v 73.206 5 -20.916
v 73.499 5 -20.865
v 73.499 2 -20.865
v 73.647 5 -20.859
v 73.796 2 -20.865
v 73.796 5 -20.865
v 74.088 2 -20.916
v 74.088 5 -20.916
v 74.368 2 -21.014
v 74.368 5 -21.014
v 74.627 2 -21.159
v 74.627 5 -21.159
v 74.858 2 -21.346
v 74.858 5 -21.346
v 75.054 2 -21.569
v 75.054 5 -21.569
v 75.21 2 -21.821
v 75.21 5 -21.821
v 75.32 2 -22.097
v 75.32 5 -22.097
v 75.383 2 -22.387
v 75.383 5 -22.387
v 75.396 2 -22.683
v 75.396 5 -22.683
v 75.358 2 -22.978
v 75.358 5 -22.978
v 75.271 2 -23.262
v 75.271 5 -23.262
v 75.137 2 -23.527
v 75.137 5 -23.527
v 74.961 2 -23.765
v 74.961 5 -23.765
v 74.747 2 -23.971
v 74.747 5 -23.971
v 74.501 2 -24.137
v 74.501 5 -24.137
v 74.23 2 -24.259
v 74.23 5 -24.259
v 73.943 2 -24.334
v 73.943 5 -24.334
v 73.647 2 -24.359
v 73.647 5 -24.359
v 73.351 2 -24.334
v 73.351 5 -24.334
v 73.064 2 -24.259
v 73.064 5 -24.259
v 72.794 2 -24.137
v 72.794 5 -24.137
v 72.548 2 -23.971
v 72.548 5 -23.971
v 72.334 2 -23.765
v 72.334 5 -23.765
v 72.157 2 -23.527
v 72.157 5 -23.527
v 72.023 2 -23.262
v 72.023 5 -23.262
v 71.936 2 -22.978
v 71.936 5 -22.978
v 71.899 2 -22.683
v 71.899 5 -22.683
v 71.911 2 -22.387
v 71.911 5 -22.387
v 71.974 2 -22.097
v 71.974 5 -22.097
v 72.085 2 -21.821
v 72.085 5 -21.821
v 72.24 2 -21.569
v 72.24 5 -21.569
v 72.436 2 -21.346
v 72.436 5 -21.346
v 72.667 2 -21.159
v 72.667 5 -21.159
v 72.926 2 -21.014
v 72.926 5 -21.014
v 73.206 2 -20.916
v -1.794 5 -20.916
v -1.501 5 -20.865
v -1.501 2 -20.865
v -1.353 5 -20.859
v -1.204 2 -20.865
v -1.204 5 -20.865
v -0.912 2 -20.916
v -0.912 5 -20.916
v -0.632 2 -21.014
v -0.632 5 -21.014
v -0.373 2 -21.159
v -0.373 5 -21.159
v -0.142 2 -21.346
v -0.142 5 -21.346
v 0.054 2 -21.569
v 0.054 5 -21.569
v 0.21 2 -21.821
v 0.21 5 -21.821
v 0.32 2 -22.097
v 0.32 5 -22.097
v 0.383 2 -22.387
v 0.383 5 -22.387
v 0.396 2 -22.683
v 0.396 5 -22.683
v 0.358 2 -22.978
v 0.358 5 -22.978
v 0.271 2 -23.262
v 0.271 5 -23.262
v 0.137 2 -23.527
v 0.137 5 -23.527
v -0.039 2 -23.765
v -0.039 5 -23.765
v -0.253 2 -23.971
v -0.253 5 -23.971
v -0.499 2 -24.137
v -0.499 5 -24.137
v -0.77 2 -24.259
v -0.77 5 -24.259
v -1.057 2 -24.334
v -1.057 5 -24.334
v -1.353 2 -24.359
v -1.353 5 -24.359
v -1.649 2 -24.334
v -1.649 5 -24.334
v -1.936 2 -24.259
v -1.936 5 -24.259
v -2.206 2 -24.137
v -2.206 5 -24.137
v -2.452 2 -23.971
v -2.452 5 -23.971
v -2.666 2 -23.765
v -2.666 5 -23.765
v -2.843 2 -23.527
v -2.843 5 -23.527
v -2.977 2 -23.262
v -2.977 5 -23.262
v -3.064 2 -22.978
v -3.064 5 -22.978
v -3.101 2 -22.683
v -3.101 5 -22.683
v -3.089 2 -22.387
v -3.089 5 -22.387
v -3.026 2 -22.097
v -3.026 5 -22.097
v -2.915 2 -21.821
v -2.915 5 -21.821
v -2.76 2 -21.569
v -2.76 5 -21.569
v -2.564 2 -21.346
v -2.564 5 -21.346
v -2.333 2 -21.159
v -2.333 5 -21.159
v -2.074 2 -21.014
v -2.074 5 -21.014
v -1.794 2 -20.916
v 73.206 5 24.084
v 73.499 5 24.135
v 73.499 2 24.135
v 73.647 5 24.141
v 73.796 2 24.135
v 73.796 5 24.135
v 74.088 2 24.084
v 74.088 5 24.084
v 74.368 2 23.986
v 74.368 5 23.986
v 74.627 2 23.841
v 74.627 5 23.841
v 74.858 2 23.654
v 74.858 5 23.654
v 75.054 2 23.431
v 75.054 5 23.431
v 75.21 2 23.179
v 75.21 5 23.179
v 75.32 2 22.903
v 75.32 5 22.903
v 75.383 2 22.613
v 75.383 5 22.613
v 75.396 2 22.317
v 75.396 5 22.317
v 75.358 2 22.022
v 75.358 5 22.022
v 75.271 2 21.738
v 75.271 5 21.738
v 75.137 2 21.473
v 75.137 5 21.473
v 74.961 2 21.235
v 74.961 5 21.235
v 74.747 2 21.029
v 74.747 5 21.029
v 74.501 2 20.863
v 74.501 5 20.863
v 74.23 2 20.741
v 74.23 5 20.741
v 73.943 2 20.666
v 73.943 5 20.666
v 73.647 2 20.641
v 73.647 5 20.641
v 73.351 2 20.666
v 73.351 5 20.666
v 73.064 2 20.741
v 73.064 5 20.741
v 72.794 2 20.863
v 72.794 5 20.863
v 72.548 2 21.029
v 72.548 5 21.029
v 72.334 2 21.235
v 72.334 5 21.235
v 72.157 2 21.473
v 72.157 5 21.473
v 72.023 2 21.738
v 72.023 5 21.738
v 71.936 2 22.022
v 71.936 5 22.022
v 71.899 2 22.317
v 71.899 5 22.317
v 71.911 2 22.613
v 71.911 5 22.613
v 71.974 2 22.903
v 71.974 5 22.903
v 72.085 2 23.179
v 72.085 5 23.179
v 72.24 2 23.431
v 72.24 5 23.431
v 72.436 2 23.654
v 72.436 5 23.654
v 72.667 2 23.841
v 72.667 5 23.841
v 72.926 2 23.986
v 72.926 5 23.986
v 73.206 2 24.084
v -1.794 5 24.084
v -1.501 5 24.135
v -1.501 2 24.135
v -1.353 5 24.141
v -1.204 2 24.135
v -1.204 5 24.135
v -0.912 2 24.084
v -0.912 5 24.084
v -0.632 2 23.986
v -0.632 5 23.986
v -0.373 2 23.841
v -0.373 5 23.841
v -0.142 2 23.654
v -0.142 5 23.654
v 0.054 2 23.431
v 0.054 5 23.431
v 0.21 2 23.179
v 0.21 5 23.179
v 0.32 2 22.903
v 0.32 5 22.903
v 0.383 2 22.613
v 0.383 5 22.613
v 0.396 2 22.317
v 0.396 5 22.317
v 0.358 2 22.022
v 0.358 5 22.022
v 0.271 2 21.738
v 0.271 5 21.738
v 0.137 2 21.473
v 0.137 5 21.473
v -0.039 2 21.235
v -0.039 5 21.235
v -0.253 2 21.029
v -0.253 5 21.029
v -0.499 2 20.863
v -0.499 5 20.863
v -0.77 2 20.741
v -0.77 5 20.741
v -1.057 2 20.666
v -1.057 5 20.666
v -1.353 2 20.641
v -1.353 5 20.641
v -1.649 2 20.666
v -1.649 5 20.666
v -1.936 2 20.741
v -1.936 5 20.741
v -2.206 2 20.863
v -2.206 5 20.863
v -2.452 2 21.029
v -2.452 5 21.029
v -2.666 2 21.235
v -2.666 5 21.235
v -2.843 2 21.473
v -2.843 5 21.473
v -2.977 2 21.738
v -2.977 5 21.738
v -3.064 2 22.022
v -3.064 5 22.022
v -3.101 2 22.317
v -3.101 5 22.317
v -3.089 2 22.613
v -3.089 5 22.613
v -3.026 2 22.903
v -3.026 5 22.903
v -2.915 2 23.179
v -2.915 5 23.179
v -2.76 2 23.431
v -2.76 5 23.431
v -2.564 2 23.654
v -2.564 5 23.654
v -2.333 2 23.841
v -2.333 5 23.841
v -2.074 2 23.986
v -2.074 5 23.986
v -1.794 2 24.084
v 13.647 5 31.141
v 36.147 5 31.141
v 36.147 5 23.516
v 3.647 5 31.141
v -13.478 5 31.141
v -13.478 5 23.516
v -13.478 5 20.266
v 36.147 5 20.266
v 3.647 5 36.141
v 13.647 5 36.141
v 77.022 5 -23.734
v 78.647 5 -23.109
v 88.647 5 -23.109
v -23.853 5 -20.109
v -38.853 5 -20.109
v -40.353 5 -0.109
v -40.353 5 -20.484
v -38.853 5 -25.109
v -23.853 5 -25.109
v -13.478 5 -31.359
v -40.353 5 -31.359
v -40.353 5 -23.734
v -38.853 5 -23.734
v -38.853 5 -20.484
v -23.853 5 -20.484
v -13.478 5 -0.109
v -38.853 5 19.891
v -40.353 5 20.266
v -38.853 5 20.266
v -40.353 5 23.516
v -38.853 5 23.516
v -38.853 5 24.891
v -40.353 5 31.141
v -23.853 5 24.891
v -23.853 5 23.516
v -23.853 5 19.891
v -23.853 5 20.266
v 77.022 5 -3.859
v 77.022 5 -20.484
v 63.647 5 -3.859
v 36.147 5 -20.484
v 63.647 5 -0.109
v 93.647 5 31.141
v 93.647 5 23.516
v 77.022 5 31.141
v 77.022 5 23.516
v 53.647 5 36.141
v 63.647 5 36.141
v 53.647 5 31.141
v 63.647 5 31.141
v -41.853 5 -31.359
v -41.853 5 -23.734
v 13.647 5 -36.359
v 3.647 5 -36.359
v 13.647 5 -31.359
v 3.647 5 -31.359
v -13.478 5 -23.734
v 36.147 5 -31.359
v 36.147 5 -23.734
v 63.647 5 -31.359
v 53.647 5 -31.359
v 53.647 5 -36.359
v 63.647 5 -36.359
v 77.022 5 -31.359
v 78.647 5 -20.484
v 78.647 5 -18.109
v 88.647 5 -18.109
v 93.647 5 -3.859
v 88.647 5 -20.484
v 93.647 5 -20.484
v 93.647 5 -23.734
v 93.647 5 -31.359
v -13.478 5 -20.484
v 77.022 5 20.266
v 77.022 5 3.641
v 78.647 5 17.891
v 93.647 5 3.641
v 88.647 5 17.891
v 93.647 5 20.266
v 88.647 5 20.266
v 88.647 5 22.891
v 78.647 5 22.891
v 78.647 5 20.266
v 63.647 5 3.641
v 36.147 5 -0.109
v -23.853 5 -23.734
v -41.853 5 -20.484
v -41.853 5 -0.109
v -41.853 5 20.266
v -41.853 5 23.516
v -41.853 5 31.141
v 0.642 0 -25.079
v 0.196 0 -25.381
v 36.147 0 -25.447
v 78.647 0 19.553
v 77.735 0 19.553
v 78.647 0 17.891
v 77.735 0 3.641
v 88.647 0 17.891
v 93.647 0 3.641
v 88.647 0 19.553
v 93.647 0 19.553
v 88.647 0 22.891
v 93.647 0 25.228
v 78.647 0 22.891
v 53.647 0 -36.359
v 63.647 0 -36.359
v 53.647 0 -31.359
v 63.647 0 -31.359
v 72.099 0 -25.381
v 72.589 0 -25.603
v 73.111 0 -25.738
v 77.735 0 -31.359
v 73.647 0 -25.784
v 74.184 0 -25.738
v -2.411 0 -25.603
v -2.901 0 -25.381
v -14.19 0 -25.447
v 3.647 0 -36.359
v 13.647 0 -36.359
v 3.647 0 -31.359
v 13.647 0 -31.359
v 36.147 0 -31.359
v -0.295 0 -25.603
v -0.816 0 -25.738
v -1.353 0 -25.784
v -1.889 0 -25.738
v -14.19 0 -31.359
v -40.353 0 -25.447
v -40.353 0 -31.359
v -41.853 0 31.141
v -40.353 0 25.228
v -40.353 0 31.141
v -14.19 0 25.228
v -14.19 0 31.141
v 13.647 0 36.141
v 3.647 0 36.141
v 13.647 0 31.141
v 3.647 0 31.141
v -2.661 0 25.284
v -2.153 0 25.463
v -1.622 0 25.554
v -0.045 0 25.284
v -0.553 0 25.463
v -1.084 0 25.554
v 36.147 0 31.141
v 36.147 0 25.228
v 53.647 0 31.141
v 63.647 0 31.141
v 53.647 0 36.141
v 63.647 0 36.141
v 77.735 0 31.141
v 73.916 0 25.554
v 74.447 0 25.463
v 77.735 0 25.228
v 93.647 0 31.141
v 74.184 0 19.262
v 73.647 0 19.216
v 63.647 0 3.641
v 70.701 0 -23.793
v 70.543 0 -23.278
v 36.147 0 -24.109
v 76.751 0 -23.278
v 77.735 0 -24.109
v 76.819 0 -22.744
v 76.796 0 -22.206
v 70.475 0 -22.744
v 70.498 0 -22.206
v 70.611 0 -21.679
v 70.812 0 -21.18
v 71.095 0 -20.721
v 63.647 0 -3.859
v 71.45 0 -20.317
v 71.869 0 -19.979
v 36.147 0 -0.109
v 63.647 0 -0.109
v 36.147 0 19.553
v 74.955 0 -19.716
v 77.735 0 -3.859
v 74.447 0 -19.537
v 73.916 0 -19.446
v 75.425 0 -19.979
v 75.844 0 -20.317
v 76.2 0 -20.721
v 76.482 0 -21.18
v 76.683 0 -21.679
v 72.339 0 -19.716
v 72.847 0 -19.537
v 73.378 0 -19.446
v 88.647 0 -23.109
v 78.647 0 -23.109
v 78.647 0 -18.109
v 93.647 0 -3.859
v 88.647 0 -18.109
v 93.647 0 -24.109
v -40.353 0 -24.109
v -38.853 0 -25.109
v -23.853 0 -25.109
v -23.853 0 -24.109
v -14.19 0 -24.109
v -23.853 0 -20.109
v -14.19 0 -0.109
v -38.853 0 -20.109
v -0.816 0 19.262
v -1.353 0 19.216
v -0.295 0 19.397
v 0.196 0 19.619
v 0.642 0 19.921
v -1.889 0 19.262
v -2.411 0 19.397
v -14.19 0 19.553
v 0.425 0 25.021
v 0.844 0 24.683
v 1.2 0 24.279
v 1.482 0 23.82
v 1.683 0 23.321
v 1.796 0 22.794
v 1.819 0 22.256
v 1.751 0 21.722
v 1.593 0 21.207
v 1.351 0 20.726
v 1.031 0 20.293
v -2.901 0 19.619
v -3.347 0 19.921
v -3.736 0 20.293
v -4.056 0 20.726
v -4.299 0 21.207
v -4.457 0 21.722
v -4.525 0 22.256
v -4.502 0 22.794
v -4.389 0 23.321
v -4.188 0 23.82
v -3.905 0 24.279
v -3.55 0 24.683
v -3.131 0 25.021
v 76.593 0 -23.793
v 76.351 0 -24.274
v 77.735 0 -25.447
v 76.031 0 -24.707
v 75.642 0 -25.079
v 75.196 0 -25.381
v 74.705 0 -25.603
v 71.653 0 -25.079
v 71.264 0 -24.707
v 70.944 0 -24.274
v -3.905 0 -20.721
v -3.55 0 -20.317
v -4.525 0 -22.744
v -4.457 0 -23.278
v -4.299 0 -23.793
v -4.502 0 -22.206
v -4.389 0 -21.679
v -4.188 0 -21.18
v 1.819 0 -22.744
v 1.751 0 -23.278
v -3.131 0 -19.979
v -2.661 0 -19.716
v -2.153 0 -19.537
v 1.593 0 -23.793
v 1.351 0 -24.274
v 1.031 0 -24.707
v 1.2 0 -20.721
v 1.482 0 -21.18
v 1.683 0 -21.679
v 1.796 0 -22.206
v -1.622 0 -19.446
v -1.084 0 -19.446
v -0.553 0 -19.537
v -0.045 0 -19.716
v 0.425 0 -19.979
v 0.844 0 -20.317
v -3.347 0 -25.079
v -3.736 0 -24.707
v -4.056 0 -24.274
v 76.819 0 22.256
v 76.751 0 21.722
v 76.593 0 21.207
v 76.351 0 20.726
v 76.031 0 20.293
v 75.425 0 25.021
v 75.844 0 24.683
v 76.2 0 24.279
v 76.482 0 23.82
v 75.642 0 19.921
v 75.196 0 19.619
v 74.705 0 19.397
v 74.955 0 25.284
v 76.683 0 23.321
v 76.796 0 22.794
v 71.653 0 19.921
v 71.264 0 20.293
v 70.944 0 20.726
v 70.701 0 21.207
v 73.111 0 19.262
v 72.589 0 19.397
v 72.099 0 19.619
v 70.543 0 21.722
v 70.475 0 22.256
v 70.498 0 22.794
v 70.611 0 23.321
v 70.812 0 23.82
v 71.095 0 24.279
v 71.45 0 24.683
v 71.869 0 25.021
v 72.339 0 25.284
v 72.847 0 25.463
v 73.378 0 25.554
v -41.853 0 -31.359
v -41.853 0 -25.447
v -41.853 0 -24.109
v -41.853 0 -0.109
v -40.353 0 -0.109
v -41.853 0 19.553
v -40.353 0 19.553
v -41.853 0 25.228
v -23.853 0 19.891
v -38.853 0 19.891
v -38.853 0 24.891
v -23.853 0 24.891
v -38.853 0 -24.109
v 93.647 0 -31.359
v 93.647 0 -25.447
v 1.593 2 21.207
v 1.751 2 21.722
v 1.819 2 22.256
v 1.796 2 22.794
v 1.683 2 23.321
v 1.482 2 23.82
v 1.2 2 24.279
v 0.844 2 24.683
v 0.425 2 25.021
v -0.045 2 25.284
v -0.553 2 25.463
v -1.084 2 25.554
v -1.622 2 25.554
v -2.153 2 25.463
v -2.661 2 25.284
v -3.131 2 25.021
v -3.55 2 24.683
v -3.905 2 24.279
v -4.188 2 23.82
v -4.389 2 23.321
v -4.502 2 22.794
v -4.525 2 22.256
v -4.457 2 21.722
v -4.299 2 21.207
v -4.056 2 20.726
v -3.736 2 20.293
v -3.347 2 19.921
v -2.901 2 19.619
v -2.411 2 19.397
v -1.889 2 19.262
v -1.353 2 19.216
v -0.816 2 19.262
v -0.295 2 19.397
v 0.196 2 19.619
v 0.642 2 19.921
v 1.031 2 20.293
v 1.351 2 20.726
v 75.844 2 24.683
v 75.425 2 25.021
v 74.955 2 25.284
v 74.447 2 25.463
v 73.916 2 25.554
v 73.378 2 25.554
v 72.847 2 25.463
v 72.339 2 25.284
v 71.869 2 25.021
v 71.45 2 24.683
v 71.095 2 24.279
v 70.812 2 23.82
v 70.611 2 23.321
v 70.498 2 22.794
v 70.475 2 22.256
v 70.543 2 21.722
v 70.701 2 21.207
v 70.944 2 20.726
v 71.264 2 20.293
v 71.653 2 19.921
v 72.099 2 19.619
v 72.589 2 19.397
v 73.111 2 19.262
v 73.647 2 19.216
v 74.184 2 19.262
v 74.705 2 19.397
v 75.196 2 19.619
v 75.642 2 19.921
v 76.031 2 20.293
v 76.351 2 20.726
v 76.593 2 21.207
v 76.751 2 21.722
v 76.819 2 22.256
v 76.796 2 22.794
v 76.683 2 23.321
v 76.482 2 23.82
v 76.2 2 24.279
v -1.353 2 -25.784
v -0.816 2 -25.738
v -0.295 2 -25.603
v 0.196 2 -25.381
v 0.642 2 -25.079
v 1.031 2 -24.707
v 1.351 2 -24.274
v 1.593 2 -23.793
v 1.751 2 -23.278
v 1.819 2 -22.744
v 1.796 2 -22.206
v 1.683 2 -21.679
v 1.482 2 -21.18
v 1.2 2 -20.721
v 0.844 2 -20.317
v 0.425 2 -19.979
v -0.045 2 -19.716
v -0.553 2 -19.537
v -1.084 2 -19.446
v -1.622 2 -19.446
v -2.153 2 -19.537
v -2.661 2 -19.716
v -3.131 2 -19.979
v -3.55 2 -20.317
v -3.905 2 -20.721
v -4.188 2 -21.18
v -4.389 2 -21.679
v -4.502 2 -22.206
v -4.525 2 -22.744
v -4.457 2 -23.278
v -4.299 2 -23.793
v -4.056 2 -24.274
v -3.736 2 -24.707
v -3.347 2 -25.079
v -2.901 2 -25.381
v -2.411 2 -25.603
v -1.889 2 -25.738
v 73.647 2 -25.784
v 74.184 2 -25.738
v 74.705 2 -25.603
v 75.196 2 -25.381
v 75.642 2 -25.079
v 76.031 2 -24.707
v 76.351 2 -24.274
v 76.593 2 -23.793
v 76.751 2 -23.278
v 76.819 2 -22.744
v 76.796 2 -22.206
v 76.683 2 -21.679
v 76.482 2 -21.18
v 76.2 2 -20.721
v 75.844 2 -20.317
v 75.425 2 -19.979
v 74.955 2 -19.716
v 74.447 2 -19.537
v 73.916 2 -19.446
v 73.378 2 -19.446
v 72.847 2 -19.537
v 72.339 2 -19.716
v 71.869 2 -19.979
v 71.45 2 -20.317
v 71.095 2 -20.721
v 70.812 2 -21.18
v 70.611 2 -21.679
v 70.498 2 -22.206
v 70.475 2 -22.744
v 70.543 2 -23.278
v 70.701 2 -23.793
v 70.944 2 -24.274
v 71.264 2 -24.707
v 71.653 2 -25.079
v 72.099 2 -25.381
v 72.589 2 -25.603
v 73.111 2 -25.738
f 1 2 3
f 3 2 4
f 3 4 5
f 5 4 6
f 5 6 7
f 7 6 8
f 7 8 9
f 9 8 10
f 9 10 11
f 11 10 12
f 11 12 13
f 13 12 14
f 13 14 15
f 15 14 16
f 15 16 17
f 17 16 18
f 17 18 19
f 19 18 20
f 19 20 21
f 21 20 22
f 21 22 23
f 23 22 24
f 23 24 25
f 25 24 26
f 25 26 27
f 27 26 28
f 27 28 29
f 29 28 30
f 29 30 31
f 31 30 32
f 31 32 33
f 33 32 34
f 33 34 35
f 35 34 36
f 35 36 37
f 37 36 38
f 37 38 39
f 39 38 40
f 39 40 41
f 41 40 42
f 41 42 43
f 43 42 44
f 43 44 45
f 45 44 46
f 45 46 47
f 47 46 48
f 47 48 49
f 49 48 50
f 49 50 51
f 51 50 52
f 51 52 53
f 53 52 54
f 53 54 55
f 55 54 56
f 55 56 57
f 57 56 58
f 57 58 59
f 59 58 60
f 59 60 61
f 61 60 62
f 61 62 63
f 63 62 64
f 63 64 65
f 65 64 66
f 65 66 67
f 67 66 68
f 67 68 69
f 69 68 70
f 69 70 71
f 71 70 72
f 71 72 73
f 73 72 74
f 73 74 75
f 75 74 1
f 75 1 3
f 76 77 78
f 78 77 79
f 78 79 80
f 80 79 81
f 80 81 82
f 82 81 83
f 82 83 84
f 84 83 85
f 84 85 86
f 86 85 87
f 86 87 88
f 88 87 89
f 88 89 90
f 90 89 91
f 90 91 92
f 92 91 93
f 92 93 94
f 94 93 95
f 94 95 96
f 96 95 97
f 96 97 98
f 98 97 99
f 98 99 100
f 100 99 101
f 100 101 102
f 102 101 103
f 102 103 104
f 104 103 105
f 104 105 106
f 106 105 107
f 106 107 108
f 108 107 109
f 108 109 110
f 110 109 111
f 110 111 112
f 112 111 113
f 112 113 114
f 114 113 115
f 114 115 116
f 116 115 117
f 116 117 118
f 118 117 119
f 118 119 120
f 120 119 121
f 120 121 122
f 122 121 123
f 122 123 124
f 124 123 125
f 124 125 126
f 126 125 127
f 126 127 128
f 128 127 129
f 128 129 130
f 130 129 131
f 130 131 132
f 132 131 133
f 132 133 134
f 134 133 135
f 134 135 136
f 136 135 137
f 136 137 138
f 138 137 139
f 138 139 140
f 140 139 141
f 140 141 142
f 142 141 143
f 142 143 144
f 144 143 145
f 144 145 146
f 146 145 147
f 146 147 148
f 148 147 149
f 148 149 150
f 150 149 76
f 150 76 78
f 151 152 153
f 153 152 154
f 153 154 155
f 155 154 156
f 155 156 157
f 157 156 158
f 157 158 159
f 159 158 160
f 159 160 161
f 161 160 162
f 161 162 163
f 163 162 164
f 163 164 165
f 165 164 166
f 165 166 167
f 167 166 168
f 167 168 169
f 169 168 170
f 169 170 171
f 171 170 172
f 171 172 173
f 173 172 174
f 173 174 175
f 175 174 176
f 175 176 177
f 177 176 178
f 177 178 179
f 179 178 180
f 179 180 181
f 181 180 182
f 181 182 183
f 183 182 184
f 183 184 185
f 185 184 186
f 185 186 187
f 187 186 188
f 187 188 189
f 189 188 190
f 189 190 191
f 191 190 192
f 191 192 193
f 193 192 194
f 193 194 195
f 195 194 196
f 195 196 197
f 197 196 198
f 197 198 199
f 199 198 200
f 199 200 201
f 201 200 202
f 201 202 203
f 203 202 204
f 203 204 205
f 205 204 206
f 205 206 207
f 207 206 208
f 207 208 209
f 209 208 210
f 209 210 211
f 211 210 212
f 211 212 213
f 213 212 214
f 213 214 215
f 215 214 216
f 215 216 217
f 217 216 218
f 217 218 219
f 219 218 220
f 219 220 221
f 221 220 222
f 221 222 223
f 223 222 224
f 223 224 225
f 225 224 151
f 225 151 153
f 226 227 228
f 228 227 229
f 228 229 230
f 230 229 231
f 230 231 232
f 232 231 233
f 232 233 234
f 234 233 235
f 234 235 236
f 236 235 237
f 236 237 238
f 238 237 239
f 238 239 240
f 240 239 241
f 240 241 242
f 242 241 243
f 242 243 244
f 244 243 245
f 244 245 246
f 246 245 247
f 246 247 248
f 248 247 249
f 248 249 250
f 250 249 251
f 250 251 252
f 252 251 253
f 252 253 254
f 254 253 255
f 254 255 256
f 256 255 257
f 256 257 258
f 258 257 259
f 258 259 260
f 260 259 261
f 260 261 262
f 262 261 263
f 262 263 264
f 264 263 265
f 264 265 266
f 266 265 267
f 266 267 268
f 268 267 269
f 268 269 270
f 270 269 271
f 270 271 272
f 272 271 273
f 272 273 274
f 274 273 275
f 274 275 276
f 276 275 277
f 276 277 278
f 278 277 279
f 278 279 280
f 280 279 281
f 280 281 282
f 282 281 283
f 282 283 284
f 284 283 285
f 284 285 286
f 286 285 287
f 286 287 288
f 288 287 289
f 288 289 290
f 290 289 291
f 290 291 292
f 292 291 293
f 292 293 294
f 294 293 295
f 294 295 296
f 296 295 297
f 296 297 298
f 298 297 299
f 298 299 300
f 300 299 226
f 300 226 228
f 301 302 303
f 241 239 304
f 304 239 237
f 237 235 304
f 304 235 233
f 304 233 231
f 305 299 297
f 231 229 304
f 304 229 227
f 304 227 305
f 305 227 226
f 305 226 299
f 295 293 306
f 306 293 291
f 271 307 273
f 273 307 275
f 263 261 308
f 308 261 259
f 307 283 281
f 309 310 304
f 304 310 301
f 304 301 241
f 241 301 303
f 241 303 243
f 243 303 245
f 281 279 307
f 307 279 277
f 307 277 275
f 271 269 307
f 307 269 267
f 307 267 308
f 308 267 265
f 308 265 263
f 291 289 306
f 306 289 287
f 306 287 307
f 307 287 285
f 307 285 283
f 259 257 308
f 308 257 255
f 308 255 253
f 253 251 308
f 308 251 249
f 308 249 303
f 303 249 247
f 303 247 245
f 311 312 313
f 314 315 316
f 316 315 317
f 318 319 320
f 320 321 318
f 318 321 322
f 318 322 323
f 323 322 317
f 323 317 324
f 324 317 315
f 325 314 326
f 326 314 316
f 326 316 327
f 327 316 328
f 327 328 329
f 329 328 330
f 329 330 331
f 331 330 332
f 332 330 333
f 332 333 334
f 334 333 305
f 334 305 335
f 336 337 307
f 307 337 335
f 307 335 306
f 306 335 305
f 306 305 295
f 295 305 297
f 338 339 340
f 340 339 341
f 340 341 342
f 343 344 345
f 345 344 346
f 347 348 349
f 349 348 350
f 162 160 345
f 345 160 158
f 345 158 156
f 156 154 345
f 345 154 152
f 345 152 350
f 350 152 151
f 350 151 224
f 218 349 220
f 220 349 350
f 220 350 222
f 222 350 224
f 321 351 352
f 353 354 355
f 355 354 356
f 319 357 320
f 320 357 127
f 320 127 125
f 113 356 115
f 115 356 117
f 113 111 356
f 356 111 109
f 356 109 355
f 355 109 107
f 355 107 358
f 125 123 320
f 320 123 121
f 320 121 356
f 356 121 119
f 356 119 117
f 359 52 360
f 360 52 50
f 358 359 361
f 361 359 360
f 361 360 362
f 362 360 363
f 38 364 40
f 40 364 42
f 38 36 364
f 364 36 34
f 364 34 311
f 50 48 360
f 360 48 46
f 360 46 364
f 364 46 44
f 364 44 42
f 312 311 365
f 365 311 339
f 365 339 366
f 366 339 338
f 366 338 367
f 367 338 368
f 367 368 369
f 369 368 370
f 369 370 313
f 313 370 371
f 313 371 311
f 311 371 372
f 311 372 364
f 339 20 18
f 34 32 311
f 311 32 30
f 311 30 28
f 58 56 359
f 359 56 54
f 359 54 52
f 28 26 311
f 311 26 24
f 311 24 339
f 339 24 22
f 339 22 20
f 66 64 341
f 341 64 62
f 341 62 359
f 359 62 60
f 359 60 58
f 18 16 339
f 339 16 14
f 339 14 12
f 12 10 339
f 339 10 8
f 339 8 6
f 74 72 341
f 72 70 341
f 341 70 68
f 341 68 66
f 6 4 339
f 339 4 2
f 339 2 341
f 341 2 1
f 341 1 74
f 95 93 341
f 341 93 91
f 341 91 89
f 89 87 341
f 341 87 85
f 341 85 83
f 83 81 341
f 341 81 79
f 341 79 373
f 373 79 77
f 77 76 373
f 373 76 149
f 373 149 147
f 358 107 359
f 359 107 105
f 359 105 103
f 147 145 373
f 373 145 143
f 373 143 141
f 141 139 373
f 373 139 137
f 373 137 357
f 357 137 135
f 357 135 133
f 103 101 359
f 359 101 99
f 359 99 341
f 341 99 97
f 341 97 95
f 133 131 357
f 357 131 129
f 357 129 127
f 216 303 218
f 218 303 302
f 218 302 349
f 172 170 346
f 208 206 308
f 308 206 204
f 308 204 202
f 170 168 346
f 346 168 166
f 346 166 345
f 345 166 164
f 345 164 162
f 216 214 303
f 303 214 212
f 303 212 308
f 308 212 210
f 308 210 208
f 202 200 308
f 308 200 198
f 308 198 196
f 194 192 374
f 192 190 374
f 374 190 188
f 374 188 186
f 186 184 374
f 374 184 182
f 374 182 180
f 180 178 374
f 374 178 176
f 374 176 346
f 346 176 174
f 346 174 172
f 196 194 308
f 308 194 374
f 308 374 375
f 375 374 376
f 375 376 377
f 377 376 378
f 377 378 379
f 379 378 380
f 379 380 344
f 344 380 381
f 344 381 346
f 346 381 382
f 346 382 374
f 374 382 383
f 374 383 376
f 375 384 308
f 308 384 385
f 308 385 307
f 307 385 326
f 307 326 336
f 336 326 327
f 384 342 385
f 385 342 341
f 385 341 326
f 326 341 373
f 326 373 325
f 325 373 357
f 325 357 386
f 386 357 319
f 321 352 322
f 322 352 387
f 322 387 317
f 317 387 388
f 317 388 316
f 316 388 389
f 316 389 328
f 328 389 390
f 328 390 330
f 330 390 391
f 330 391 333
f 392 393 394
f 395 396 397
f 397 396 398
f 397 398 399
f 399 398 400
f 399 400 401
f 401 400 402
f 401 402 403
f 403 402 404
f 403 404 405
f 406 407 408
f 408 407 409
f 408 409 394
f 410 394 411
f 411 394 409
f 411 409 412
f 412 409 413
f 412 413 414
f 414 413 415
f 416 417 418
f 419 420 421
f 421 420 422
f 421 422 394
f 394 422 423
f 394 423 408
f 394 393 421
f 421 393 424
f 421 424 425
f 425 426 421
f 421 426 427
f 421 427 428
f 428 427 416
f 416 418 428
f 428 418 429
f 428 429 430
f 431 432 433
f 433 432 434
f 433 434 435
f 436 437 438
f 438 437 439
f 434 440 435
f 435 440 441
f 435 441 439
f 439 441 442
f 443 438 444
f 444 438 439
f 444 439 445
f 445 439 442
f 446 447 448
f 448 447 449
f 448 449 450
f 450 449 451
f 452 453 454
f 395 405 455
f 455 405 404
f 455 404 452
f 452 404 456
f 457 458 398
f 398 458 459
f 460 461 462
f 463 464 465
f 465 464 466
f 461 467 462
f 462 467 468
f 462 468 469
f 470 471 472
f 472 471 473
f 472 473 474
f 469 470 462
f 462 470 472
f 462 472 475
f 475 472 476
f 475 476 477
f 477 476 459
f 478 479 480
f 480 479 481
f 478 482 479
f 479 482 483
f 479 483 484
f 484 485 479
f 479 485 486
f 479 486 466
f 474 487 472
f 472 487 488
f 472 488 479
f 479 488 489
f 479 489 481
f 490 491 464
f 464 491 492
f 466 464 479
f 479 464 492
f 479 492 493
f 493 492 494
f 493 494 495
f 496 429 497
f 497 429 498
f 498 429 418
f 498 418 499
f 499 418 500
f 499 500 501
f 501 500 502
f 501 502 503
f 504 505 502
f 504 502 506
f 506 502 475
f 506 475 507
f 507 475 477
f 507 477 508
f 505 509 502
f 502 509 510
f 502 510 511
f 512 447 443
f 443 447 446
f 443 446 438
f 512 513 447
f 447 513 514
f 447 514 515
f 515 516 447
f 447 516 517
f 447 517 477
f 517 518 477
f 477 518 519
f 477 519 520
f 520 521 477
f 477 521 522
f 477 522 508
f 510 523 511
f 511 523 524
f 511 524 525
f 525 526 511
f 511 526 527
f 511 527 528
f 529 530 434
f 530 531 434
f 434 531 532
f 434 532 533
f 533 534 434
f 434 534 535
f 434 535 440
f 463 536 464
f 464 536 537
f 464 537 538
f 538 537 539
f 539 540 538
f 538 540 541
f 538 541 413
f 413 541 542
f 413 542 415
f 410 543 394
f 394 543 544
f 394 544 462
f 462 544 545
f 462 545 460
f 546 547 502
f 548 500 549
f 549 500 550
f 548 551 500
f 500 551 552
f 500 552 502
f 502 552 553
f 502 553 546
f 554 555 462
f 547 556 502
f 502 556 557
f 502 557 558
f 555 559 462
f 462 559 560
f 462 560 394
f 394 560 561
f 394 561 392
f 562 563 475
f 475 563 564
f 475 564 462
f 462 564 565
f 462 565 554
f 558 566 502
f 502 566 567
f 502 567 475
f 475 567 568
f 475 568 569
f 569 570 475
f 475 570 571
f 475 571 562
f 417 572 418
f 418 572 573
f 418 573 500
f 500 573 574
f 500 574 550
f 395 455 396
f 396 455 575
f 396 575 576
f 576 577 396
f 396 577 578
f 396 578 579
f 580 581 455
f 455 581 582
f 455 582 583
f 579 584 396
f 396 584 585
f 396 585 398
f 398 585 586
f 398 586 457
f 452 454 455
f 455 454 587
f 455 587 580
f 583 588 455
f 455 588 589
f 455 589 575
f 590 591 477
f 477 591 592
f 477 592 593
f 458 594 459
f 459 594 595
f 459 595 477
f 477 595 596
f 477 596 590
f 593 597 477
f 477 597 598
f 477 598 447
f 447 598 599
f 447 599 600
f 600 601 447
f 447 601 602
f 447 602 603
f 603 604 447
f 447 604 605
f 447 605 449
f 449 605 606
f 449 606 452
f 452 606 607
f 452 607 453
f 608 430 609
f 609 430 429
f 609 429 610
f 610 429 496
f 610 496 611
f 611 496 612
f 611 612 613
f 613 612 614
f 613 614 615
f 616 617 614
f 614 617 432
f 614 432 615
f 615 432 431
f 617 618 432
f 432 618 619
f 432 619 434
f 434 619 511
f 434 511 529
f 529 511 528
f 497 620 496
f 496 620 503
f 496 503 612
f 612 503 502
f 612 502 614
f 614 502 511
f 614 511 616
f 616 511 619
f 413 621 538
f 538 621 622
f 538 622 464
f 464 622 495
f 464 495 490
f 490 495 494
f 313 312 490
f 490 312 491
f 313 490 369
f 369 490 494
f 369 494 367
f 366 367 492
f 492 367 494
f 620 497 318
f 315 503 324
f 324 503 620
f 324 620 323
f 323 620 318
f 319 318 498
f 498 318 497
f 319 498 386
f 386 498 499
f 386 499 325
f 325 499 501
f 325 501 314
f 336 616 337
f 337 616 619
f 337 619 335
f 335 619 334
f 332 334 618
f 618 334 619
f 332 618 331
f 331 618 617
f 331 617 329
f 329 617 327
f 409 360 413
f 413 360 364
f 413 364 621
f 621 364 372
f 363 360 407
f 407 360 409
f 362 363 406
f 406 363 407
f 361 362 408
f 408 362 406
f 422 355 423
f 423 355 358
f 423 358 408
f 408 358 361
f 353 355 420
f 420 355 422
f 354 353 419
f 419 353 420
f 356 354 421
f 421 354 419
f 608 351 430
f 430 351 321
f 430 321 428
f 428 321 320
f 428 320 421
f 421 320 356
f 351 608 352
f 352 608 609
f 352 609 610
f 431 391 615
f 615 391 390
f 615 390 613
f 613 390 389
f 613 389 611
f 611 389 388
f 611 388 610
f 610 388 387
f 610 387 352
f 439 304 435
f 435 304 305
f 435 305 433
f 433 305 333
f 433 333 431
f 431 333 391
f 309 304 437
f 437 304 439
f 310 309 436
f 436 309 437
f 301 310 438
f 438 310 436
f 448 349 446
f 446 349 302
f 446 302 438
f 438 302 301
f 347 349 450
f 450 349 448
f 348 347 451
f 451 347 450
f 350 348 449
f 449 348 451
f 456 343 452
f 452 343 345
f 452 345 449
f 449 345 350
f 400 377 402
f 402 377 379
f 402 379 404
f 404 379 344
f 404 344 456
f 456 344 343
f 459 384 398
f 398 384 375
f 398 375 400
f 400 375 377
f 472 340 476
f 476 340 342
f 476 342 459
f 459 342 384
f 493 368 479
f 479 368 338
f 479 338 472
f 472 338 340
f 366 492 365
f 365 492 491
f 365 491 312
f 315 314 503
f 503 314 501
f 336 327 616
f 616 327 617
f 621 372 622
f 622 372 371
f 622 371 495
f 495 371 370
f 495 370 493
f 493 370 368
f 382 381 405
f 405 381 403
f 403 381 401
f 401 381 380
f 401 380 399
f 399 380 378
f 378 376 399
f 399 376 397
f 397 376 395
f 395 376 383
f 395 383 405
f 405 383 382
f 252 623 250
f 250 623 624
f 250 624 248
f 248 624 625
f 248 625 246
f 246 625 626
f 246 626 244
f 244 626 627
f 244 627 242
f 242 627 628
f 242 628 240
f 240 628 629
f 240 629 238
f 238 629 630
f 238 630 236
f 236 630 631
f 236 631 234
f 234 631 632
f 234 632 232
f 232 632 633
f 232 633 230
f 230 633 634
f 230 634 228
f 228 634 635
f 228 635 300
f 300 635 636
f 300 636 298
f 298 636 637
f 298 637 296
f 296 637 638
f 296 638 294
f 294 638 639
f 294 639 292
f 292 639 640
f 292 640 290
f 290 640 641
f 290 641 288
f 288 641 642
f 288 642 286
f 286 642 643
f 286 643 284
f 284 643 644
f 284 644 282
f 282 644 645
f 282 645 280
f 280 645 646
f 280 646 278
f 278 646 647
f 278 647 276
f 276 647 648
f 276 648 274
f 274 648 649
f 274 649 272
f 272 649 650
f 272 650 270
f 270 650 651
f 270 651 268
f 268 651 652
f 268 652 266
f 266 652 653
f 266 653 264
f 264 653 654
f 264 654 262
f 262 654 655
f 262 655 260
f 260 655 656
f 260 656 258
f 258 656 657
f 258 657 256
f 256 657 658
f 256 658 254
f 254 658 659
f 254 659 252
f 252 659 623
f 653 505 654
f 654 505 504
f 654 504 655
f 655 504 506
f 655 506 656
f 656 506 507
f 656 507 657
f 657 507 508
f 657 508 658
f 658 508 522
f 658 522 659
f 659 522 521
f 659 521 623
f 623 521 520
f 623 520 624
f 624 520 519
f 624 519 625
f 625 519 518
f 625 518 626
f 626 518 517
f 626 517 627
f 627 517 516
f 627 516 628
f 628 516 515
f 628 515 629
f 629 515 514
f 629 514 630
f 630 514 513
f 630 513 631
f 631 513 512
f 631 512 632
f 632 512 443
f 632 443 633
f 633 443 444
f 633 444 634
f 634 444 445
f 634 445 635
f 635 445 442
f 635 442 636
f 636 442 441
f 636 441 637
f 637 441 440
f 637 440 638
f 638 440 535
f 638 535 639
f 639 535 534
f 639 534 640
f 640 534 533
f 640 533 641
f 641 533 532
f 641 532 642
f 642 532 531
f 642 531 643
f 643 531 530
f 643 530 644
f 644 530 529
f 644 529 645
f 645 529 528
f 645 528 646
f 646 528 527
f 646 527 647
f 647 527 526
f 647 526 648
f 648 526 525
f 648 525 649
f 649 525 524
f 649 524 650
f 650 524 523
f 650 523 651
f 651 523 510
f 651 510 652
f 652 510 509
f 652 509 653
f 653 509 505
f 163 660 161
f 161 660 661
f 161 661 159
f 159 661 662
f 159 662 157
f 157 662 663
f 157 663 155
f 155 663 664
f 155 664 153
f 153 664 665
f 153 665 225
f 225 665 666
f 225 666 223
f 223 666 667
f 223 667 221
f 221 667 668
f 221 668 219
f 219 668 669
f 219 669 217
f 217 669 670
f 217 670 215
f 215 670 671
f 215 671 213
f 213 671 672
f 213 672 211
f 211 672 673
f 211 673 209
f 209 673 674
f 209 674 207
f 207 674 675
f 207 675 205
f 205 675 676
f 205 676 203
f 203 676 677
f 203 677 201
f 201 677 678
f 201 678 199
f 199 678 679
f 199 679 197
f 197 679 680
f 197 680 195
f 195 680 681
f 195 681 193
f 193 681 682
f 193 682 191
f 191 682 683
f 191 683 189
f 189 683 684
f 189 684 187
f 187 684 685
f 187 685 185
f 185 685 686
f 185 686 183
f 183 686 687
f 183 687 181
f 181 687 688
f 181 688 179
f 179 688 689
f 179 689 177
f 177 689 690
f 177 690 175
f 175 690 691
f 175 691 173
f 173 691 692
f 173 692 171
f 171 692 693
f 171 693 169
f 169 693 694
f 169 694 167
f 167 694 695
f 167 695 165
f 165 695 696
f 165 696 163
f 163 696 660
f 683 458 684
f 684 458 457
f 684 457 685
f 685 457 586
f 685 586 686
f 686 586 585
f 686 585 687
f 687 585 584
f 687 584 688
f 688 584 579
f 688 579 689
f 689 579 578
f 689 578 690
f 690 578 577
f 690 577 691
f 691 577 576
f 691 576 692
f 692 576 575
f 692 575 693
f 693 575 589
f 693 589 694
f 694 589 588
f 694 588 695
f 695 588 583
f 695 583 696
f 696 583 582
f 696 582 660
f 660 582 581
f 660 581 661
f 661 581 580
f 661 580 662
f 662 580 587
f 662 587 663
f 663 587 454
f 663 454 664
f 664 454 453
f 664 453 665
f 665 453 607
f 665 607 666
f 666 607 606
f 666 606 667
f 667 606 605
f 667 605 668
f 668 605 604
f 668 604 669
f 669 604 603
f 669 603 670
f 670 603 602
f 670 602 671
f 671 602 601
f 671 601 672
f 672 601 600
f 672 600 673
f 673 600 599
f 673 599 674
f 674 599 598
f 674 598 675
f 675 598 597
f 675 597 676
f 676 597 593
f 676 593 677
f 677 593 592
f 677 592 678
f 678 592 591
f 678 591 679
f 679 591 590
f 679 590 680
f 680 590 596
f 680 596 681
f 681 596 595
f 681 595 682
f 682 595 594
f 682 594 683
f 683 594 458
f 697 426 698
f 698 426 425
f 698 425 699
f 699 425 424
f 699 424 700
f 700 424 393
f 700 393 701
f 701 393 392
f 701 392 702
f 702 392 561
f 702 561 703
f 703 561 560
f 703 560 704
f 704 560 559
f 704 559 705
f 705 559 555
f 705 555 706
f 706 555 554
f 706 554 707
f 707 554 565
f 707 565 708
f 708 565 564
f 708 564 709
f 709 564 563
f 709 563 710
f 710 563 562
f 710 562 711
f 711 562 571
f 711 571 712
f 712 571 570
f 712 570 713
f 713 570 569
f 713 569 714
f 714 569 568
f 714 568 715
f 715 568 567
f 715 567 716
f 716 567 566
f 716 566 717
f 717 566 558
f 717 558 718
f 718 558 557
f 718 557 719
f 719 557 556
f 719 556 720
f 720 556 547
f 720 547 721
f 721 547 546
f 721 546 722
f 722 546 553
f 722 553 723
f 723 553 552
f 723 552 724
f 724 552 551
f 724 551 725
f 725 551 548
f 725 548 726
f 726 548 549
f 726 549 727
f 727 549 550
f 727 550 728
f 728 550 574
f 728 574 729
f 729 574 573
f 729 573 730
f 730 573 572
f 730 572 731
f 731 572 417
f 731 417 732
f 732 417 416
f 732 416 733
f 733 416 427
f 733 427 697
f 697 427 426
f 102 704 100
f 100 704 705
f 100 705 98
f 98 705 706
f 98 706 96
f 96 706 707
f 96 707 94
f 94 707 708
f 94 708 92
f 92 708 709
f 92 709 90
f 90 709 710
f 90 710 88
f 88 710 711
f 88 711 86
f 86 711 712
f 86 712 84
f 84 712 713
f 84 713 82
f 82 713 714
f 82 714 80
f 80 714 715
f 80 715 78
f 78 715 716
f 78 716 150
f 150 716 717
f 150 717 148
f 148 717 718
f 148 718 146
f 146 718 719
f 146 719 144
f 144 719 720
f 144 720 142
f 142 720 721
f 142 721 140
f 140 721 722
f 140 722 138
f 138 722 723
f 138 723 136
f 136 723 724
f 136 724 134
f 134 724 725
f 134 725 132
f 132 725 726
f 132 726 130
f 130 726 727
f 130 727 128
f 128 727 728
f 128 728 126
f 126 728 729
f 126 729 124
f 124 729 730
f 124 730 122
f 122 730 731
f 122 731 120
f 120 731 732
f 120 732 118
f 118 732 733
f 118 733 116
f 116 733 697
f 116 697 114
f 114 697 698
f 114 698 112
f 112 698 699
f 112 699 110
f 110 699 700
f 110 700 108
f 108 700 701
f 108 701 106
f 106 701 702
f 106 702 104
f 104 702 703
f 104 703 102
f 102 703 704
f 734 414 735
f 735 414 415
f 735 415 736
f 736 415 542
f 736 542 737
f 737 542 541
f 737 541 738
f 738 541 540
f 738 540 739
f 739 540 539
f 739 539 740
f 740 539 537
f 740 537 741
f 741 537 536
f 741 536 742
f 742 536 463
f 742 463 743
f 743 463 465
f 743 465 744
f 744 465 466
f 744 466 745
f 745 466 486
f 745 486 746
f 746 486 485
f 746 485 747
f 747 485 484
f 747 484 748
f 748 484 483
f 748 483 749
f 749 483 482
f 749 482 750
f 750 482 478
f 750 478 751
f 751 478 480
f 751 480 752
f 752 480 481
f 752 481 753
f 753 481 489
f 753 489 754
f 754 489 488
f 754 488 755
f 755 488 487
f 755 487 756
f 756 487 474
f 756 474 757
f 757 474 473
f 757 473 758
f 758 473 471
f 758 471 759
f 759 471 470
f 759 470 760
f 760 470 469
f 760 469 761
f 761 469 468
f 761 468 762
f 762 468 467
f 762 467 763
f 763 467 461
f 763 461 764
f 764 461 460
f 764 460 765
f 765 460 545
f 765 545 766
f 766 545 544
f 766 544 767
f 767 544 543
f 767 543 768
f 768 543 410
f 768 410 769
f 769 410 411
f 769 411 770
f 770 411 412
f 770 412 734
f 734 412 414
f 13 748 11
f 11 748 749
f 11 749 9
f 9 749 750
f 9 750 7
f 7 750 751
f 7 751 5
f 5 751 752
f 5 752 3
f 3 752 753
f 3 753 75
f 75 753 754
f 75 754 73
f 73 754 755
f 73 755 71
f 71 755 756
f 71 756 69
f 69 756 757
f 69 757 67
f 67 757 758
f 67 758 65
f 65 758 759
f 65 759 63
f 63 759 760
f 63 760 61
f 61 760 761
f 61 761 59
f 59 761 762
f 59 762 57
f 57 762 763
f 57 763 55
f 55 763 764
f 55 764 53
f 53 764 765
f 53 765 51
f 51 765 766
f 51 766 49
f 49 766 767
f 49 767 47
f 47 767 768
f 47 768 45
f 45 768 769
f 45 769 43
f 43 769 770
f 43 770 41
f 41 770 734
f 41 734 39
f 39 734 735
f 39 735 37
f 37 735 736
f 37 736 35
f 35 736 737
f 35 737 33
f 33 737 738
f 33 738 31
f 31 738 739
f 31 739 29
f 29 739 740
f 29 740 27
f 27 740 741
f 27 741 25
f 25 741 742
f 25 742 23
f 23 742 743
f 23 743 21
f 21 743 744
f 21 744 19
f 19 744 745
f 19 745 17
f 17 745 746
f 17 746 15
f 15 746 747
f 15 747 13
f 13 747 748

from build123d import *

# Parameters (mm, degrees)
SKETCH1_R           = 1.75
SKETCH1_W           = 10
SKETCH1_H           = 5
SKETCH1_W_2         = 15
BOSS_EXTRUDE1_DEPTH = 5
SKETCH3_R           = 3.175
CUT_EXTRUDE1_DEPTH  = 2


with BuildPart() as part:
    # Sketch1 → Boss-Extrude1 (new body)
    with BuildSketch(Plane(origin=(0, 0, 0), x_dir=(1, 0, 0), z_dir=(0, 1, 0))):
        Polygon((3.647196653, 31.359118607), (3.647196653, 36.359118607), (13.647196653, 36.359118607), (13.647196653, 31.359118607), (53.647196653, 31.359118607), (53.647196653, 36.359118607), (63.647196653, 36.359118607), (63.647196653, 31.359118607), (93.647196653, 31.359118607), (93.647196653, 3.859118607), (63.647196653, 3.859118607), (63.647196653, -3.640881393), (93.647196653, -3.640881393), (93.647196653, -31.140881393), (63.647196653, -31.140881393), (63.647196653, -36.140881393), (53.647196653, -36.140881393), (53.647196653, -31.140881393), (13.647196653, -31.140881393), (13.647196653, -36.140881393), (3.647196653, -36.140881393), (3.647196653, -31.140881393), (-41.852803347, -31.140881393), (-41.852803347, 31.359118607), align=None)
        with Locations(Location((73.647196653, 22.609118607, 0), (0, 0, 270))):
            Circle(SKETCH1_R, mode=Mode.SUBTRACT)
        with Locations(Location((-1.352803347, 22.609118607, 0), (0, 0, 270))):
            Circle(SKETCH1_R, mode=Mode.SUBTRACT)
        with Locations(Location((73.647196653, -22.390881393, 0), (0, 0, 270))):
            Circle(SKETCH1_R, mode=Mode.SUBTRACT)
        with Locations(Location((-1.352803347, -22.390881393, 0), (0, 0, 270))):
            Circle(SKETCH1_R, mode=Mode.SUBTRACT)
        with Locations((83.647196653, -20.390881393)):
            Rectangle(SKETCH1_W, SKETCH1_H, mode=Mode.SUBTRACT)
        with Locations((-31.352803347, -22.390881393)):
            Rectangle(SKETCH1_W_2, SKETCH1_H, mode=Mode.SUBTRACT)
        with Locations((-31.352803347, 22.609118607)):
            Rectangle(SKETCH1_W_2, SKETCH1_H, mode=Mode.SUBTRACT)
        with Locations((83.647196653, 20.609118607)):
            Rectangle(SKETCH1_W, SKETCH1_H, mode=Mode.SUBTRACT)
    extrude(amount=BOSS_EXTRUDE1_DEPTH)

    # Sketch3 → Cut-Extrude1 (cut)
    with BuildSketch(Plane.XZ):
        with Locations(Location((-1.352803347, 22.390881393, 0), (0, 0, 270))):
            Circle(SKETCH3_R)
        with Locations(Location((73.647196653, 22.390881393, 0), (0, 0, 270))):
            Circle(SKETCH3_R)
        with Locations(Location((-1.352803347, -22.609118607, 0), (0, 0, 270))):
            Circle(SKETCH3_R)
        with Locations(Location((73.647196653, -22.609118607, 0), (0, 0, 270))):
            Circle(SKETCH3_R)
    extrude(amount=-CUT_EXTRUDE1_DEPTH, mode=Mode.SUBTRACT)


solid = part.part
